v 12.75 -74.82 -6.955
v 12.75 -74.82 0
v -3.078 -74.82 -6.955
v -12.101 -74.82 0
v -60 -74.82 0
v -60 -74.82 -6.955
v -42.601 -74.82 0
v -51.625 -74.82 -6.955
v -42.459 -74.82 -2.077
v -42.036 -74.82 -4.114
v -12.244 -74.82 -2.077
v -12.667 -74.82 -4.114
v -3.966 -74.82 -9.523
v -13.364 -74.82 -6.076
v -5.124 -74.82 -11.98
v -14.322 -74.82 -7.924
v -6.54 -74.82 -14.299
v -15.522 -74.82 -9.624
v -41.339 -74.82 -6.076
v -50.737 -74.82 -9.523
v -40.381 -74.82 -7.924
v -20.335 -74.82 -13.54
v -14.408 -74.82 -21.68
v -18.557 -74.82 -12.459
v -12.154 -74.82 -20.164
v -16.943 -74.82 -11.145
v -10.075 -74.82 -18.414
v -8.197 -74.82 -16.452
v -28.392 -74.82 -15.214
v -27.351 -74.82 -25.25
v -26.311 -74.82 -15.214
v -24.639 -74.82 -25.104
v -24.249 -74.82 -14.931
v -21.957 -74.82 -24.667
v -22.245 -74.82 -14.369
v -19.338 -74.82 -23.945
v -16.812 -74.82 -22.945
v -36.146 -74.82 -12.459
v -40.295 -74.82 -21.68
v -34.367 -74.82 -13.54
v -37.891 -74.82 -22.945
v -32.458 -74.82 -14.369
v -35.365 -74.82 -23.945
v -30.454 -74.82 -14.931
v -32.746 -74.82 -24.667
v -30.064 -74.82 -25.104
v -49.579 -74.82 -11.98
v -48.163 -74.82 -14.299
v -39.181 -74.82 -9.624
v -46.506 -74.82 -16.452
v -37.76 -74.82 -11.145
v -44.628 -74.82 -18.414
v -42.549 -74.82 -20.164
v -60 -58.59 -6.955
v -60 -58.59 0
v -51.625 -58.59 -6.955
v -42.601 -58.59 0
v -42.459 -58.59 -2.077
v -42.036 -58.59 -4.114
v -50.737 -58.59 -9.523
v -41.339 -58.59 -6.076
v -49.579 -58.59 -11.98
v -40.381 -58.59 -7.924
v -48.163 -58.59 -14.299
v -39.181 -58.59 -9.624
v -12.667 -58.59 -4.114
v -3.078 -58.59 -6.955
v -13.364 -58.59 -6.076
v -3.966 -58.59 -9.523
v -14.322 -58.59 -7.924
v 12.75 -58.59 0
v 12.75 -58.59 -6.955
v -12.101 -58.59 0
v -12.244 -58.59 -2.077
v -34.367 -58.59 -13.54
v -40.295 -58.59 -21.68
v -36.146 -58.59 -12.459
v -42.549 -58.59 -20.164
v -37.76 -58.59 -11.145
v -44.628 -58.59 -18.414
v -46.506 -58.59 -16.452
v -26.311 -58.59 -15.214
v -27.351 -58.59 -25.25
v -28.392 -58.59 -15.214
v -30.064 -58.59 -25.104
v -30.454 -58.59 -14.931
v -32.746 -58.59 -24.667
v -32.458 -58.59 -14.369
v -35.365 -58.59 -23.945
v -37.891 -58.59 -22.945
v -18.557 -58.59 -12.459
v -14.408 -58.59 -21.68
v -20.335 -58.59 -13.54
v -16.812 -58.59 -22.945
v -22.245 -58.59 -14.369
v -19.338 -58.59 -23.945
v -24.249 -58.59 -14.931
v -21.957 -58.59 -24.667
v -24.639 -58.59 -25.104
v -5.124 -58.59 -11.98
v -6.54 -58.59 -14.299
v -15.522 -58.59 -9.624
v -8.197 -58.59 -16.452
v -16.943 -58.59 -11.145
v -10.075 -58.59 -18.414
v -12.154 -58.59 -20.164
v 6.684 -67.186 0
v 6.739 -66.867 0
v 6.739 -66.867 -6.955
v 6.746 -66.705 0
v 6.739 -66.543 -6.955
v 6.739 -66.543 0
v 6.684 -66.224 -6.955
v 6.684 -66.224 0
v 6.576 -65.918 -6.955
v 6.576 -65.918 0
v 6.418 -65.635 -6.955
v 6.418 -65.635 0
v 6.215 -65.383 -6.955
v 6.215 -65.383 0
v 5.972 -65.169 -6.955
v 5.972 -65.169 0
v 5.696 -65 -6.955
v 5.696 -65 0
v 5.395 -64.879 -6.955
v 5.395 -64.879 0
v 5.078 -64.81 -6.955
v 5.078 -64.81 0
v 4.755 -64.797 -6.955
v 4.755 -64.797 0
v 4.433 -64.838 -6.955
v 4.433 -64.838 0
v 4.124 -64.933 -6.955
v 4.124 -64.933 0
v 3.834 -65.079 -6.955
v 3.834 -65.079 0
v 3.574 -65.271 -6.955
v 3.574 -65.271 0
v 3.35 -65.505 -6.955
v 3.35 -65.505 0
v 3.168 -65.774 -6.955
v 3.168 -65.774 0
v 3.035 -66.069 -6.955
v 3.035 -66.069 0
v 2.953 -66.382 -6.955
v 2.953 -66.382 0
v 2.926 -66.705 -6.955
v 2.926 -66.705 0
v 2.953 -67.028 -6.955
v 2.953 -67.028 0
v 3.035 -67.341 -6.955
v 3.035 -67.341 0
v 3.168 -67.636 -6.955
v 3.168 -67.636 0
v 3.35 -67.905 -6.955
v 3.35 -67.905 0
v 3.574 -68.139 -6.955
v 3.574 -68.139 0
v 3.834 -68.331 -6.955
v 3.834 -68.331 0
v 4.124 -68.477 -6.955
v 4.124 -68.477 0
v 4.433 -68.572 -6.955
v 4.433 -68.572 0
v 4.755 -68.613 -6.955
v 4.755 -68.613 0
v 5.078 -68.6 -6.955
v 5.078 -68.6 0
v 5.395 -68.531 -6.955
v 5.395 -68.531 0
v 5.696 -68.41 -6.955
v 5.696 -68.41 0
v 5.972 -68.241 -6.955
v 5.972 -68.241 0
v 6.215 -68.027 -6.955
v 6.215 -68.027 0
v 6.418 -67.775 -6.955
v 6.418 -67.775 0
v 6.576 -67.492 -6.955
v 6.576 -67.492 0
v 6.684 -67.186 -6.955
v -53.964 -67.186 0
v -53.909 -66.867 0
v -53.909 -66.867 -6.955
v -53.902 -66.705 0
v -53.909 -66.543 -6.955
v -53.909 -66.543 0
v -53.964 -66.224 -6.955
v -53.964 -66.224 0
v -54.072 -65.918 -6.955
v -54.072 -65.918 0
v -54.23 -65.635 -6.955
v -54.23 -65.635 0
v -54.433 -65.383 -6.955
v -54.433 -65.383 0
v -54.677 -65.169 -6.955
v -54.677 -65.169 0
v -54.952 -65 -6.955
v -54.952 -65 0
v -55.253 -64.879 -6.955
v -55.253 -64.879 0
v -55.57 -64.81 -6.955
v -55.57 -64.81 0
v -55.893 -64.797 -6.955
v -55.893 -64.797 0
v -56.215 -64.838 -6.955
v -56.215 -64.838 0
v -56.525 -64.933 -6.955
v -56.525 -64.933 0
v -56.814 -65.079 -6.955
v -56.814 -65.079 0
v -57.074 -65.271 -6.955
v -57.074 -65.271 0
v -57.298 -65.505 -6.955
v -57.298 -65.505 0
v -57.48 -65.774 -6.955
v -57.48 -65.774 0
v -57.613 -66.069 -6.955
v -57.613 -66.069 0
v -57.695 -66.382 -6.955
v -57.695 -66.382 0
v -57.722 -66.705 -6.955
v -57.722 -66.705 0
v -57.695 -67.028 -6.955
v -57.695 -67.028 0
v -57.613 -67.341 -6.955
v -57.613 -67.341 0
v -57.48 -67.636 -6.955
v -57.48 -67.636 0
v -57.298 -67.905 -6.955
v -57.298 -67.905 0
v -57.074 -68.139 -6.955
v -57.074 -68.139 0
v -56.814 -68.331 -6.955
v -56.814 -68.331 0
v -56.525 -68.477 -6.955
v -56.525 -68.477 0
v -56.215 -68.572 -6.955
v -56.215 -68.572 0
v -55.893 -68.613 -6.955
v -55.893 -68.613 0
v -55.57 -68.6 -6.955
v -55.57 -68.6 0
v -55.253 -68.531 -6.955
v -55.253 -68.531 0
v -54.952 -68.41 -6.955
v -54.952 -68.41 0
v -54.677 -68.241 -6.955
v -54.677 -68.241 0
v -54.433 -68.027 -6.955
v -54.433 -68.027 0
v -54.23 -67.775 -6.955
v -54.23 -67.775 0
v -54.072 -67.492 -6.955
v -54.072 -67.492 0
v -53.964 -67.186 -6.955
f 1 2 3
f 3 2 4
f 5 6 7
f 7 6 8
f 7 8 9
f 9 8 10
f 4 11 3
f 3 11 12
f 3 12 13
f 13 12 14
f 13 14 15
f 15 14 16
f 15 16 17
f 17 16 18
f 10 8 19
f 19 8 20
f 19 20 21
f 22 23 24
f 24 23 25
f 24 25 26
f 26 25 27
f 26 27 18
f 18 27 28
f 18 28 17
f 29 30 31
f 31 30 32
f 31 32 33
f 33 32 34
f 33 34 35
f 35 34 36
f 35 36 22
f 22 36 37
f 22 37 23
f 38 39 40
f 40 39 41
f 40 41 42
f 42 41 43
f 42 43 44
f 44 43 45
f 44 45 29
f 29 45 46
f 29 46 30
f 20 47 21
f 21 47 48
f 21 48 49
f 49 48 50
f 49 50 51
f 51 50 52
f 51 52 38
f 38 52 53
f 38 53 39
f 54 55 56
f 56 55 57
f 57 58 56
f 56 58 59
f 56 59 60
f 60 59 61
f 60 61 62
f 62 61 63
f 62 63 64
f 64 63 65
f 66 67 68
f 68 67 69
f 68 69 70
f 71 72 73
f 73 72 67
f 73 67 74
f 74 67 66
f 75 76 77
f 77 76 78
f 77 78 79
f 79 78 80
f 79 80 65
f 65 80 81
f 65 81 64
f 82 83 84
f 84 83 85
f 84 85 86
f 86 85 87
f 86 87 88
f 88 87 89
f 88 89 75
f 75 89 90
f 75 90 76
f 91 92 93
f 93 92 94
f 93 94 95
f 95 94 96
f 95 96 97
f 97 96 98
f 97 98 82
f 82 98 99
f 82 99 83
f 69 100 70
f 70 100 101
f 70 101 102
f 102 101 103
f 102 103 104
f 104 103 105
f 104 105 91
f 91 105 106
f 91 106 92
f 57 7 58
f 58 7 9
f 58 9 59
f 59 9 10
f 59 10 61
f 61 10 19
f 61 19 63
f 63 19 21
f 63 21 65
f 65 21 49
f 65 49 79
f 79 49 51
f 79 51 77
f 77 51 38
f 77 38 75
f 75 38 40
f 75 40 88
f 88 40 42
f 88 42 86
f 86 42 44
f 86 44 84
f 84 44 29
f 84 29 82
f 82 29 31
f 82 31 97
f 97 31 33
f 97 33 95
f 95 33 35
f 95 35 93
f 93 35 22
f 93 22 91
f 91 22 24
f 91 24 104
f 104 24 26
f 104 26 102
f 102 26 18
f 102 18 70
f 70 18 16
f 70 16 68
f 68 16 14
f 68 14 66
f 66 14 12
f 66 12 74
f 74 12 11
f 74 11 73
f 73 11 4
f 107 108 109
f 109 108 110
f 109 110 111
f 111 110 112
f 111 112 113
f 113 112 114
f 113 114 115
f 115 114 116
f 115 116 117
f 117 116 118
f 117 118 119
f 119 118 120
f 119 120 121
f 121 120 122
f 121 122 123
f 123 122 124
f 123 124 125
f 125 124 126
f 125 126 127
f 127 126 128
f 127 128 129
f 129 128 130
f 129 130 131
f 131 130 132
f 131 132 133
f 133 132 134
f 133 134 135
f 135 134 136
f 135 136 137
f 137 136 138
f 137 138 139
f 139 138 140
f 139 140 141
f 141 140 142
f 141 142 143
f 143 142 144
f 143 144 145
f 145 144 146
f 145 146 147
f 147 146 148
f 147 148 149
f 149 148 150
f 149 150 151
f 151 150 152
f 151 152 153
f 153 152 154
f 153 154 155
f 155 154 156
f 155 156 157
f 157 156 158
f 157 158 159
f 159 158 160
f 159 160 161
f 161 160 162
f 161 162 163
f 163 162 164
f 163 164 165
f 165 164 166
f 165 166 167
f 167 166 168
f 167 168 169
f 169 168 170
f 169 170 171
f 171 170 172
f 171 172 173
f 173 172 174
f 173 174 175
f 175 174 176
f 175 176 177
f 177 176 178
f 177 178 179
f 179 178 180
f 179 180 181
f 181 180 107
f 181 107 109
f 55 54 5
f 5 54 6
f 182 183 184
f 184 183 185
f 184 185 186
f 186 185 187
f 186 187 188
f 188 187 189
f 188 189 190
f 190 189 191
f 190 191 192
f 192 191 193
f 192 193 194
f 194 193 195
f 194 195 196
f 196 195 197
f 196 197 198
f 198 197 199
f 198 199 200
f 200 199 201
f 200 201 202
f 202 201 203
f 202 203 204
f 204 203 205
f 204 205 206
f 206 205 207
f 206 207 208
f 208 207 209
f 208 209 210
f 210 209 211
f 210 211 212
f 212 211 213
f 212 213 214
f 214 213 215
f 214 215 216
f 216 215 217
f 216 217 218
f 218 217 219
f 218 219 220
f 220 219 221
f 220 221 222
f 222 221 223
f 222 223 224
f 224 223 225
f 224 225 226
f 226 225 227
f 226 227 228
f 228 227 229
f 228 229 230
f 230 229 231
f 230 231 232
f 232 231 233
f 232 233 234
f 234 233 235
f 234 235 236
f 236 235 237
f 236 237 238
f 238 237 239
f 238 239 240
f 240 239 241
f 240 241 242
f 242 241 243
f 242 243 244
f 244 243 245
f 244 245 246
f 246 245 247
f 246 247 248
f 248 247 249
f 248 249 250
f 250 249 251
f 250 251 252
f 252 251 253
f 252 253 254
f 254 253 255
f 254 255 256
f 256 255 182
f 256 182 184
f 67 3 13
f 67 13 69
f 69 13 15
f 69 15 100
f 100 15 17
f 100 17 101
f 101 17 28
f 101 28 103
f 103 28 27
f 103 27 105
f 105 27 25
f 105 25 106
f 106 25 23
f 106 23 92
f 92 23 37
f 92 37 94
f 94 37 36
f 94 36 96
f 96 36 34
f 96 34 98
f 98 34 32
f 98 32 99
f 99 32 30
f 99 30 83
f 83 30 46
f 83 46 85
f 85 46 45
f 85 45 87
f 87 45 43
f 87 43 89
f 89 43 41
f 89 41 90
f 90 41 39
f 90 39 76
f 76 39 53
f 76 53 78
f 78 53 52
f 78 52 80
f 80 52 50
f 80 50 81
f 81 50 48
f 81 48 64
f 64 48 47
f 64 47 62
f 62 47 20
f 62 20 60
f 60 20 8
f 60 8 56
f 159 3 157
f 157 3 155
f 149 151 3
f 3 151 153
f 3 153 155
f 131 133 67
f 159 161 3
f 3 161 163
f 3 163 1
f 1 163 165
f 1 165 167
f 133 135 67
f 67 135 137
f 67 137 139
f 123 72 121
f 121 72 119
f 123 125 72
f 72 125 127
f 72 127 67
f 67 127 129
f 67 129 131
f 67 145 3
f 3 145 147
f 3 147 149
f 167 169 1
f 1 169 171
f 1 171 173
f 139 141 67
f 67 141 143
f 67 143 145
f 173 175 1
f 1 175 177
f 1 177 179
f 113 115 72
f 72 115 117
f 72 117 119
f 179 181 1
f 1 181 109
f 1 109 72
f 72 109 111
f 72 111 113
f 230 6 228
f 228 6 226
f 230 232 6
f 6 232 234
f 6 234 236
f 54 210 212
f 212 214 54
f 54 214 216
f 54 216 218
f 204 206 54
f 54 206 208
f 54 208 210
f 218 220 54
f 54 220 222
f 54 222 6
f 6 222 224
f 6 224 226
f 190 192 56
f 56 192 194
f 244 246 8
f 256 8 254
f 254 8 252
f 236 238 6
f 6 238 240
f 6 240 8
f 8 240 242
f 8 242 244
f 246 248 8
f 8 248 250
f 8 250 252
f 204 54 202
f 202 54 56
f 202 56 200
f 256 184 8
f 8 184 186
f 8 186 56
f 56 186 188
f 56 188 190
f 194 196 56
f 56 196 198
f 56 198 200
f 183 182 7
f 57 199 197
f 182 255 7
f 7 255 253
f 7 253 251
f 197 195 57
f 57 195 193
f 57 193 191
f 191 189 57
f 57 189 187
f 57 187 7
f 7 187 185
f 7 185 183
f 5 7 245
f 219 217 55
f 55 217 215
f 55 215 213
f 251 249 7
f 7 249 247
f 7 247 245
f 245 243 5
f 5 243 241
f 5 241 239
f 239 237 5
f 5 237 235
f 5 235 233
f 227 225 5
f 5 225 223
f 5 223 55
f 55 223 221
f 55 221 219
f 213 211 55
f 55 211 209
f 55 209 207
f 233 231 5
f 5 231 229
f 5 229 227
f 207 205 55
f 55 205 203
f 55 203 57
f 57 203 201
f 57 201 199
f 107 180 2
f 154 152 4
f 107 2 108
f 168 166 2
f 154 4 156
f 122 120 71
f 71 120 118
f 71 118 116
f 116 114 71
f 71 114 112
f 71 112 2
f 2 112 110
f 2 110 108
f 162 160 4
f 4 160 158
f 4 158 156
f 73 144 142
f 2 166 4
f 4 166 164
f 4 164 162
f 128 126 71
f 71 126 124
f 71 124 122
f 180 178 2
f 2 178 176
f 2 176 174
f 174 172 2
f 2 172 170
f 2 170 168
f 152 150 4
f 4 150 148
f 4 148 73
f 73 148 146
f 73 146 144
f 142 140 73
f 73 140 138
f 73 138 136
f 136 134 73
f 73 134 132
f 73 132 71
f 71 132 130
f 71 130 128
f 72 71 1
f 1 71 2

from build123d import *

# Parameters (mm, degrees)
SKETCH_1_W               = 51.5
SKETCH_1_H               = 34.15
SKETCH_1_W_2             = 31.5
SKETCH_1_H_2             = 14.15
EXTRUDE_1_DEPTH          = 12.25
SKETCH_2_R               = 1.91
CUT_EXTRUDE_1_DEPTH      = 34.236736076
SKETCH_4_W               = 13
SKETCH_4_H               = 13.91
EXTRUDE_1_2_DEPTH        = 74.82
SKETCH_5_W               = 13.91
SKETCH_5_H               = 16.23
EXTRUDE_2_DEPTH          = 16
SKETCH_7_R               = 25.25
SKETCH_7_R_2             = 15.25
EXTRUDE_2_2_DEPTH        = 16.23
SKETCH_15_R              = 1.91
CUT_EXTRUDE_6_DEPTH      = 97.964478439
SKETCH_16_W              = 13.91
SKETCH_16_H              = 16.23
EXTRUDE_4_DEPTH          = 10
SKETCH_17_R              = 1.91
CUT_EXTRUDE_7_DEPTH      = 102.16913771
CUT_EXTRUDE_8_DEPTH      = 83
CUT_EXTRUDE_8_DEPTH_BACK = 41
SKETCH_19_W              = 96.544544687
SKETCH_19_H              = 28.426665618
SKETCH_21_W              = 18.566153186
SKETCH_21_H              = 50.693982062
CUT_EXTRUDE_10_DEPTH     = 57
SKETCH_22_W              = 13
SKETCH_22_H              = 6.955
CUT_EXTRUDE_11_DEPTH     = 57


with BuildPart() as part:
    # 草圖1 → Extrude 1 (new body)
    with BuildSketch(Plane(origin=(0, 0, 0), x_dir=(1, 0, 0), z_dir=(0, 1, 0))):
        Rectangle(SKETCH_1_W, SKETCH_1_H)
        Rectangle(SKETCH_1_W_2, SKETCH_1_H_2, mode=Mode.SUBTRACT)
    extrude(amount=EXTRUDE_1_DEPTH)

    # 草圖2 → 除料-伸長1 (cut, through all)
    with BuildSketch(Plane(origin=(0, 12.25, 0), x_dir=(1, 0, 0), z_dir=(0, 1, 0))):
        with Locations(Location((-20.75, 0, 0), (0, 0, 270))):
            Circle(SKETCH_2_R)
        with Locations(Location((20.75, 0, 0), (0, 0, 270))):
            Circle(SKETCH_2_R)
    extrude(amount=-CUT_EXTRUDE_1_DEPTH, mode=Mode.SUBTRACT)

    # 草圖4 → Extrude 1 2 (add)
    with BuildSketch(Plane.XZ):
        with Locations((19.25, 0)):
            Rectangle(SKETCH_4_W, SKETCH_4_H)
    extrude(amount=EXTRUDE_1_2_DEPTH)

    # 草圖5 → Extrude 2 (add)
    with BuildSketch(Plane.ZY.offset(-12.75)):
        with Locations((0, -66.705)):
            Rectangle(SKETCH_5_W, SKETCH_5_H)
    extrude(amount=EXTRUDE_2_DEPTH)

    # 草圖7 → Extrude 2 2 (add)
    with BuildSketch(Plane(origin=(3.626674765, -74.82, 0), x_dir=(1, 0, 0), z_dir=(0, -1, 0))):
        with Locations((-30.978154344, 0)):
            Circle(SKETCH_7_R)
        with Locations((-30.978154344, 0)):
            Circle(SKETCH_7_R_2, mode=Mode.SUBTRACT)
    extrude(amount=-EXTRUDE_2_2_DEPTH)

    # 草圖15 → 除料-伸長6 (cut, through all)
    with BuildSketch(Plane(origin=(0, 0, -6.955), x_dir=(-1, 0, 0), z_dir=(0, 0, -1))):
        with Locations((-4.835883248, -66.705)):
            Circle(SKETCH_15_R)
    extrude(amount=-CUT_EXTRUDE_6_DEPTH, mode=Mode.SUBTRACT)

    # 草圖16 → 填料-伸長4 (add)
    with BuildSketch(Plane(origin=(-60, 0, 0), x_dir=(0, 0, -1), z_dir=(1, 0, 0))):
        with Locations((0, -66.705)):
            Rectangle(SKETCH_16_W, SKETCH_16_H)
    extrude(amount=EXTRUDE_4_DEPTH)

    # 草圖17 → 除料-伸長7 (cut, through all)
    with BuildSketch(Plane(origin=(0, 0, -6.955), x_dir=(-1, 0, 0), z_dir=(0, 0, -1))):
        with Locations((55.812362827, -66.705)):
            Circle(SKETCH_17_R)
    extrude(amount=-CUT_EXTRUDE_7_DEPTH, mode=Mode.SUBTRACT)

    # 草圖19 → 除料-伸長8 (cut, two sides: drawn at the far end of the back side and taken through both)
    with BuildSketch(Plane(origin=(0, -58.59, 0), x_dir=(1, 0, 0), z_dir=(0, 1, 0)).offset(-CUT_EXTRUDE_8_DEPTH_BACK)):
        with Locations((-11.727727657, -14.213332809)):
            Rectangle(SKETCH_19_W, SKETCH_19_H)
    extrude(amount=CUT_EXTRUDE_8_DEPTH + CUT_EXTRUDE_8_DEPTH_BACK, mode=Mode.SUBTRACT)

    # 草圖21 → 除料-伸長10 (cut)
    with BuildSketch(Plane(origin=(25.75, 0, 0), x_dir=(0, 0, -1), z_dir=(1, 0, 0))):
        with Locations((9.283076593, -10.889301771)):
            Rectangle(SKETCH_21_W, SKETCH_21_H)
    extrude(amount=-CUT_EXTRUDE_10_DEPTH, mode=Mode.SUBTRACT)

    # 草圖22 → 除料-伸長11 (cut)
    with BuildSketch(Plane(origin=(0, -36.236292802, 0), x_dir=(1, 0, 0), z_dir=(0, 1, 0))):
        with Locations((19.25, 3.4775)):
            Rectangle(SKETCH_22_W, SKETCH_22_H)
    extrude(amount=-CUT_EXTRUDE_11_DEPTH, mode=Mode.SUBTRACT)


solid = part.part
